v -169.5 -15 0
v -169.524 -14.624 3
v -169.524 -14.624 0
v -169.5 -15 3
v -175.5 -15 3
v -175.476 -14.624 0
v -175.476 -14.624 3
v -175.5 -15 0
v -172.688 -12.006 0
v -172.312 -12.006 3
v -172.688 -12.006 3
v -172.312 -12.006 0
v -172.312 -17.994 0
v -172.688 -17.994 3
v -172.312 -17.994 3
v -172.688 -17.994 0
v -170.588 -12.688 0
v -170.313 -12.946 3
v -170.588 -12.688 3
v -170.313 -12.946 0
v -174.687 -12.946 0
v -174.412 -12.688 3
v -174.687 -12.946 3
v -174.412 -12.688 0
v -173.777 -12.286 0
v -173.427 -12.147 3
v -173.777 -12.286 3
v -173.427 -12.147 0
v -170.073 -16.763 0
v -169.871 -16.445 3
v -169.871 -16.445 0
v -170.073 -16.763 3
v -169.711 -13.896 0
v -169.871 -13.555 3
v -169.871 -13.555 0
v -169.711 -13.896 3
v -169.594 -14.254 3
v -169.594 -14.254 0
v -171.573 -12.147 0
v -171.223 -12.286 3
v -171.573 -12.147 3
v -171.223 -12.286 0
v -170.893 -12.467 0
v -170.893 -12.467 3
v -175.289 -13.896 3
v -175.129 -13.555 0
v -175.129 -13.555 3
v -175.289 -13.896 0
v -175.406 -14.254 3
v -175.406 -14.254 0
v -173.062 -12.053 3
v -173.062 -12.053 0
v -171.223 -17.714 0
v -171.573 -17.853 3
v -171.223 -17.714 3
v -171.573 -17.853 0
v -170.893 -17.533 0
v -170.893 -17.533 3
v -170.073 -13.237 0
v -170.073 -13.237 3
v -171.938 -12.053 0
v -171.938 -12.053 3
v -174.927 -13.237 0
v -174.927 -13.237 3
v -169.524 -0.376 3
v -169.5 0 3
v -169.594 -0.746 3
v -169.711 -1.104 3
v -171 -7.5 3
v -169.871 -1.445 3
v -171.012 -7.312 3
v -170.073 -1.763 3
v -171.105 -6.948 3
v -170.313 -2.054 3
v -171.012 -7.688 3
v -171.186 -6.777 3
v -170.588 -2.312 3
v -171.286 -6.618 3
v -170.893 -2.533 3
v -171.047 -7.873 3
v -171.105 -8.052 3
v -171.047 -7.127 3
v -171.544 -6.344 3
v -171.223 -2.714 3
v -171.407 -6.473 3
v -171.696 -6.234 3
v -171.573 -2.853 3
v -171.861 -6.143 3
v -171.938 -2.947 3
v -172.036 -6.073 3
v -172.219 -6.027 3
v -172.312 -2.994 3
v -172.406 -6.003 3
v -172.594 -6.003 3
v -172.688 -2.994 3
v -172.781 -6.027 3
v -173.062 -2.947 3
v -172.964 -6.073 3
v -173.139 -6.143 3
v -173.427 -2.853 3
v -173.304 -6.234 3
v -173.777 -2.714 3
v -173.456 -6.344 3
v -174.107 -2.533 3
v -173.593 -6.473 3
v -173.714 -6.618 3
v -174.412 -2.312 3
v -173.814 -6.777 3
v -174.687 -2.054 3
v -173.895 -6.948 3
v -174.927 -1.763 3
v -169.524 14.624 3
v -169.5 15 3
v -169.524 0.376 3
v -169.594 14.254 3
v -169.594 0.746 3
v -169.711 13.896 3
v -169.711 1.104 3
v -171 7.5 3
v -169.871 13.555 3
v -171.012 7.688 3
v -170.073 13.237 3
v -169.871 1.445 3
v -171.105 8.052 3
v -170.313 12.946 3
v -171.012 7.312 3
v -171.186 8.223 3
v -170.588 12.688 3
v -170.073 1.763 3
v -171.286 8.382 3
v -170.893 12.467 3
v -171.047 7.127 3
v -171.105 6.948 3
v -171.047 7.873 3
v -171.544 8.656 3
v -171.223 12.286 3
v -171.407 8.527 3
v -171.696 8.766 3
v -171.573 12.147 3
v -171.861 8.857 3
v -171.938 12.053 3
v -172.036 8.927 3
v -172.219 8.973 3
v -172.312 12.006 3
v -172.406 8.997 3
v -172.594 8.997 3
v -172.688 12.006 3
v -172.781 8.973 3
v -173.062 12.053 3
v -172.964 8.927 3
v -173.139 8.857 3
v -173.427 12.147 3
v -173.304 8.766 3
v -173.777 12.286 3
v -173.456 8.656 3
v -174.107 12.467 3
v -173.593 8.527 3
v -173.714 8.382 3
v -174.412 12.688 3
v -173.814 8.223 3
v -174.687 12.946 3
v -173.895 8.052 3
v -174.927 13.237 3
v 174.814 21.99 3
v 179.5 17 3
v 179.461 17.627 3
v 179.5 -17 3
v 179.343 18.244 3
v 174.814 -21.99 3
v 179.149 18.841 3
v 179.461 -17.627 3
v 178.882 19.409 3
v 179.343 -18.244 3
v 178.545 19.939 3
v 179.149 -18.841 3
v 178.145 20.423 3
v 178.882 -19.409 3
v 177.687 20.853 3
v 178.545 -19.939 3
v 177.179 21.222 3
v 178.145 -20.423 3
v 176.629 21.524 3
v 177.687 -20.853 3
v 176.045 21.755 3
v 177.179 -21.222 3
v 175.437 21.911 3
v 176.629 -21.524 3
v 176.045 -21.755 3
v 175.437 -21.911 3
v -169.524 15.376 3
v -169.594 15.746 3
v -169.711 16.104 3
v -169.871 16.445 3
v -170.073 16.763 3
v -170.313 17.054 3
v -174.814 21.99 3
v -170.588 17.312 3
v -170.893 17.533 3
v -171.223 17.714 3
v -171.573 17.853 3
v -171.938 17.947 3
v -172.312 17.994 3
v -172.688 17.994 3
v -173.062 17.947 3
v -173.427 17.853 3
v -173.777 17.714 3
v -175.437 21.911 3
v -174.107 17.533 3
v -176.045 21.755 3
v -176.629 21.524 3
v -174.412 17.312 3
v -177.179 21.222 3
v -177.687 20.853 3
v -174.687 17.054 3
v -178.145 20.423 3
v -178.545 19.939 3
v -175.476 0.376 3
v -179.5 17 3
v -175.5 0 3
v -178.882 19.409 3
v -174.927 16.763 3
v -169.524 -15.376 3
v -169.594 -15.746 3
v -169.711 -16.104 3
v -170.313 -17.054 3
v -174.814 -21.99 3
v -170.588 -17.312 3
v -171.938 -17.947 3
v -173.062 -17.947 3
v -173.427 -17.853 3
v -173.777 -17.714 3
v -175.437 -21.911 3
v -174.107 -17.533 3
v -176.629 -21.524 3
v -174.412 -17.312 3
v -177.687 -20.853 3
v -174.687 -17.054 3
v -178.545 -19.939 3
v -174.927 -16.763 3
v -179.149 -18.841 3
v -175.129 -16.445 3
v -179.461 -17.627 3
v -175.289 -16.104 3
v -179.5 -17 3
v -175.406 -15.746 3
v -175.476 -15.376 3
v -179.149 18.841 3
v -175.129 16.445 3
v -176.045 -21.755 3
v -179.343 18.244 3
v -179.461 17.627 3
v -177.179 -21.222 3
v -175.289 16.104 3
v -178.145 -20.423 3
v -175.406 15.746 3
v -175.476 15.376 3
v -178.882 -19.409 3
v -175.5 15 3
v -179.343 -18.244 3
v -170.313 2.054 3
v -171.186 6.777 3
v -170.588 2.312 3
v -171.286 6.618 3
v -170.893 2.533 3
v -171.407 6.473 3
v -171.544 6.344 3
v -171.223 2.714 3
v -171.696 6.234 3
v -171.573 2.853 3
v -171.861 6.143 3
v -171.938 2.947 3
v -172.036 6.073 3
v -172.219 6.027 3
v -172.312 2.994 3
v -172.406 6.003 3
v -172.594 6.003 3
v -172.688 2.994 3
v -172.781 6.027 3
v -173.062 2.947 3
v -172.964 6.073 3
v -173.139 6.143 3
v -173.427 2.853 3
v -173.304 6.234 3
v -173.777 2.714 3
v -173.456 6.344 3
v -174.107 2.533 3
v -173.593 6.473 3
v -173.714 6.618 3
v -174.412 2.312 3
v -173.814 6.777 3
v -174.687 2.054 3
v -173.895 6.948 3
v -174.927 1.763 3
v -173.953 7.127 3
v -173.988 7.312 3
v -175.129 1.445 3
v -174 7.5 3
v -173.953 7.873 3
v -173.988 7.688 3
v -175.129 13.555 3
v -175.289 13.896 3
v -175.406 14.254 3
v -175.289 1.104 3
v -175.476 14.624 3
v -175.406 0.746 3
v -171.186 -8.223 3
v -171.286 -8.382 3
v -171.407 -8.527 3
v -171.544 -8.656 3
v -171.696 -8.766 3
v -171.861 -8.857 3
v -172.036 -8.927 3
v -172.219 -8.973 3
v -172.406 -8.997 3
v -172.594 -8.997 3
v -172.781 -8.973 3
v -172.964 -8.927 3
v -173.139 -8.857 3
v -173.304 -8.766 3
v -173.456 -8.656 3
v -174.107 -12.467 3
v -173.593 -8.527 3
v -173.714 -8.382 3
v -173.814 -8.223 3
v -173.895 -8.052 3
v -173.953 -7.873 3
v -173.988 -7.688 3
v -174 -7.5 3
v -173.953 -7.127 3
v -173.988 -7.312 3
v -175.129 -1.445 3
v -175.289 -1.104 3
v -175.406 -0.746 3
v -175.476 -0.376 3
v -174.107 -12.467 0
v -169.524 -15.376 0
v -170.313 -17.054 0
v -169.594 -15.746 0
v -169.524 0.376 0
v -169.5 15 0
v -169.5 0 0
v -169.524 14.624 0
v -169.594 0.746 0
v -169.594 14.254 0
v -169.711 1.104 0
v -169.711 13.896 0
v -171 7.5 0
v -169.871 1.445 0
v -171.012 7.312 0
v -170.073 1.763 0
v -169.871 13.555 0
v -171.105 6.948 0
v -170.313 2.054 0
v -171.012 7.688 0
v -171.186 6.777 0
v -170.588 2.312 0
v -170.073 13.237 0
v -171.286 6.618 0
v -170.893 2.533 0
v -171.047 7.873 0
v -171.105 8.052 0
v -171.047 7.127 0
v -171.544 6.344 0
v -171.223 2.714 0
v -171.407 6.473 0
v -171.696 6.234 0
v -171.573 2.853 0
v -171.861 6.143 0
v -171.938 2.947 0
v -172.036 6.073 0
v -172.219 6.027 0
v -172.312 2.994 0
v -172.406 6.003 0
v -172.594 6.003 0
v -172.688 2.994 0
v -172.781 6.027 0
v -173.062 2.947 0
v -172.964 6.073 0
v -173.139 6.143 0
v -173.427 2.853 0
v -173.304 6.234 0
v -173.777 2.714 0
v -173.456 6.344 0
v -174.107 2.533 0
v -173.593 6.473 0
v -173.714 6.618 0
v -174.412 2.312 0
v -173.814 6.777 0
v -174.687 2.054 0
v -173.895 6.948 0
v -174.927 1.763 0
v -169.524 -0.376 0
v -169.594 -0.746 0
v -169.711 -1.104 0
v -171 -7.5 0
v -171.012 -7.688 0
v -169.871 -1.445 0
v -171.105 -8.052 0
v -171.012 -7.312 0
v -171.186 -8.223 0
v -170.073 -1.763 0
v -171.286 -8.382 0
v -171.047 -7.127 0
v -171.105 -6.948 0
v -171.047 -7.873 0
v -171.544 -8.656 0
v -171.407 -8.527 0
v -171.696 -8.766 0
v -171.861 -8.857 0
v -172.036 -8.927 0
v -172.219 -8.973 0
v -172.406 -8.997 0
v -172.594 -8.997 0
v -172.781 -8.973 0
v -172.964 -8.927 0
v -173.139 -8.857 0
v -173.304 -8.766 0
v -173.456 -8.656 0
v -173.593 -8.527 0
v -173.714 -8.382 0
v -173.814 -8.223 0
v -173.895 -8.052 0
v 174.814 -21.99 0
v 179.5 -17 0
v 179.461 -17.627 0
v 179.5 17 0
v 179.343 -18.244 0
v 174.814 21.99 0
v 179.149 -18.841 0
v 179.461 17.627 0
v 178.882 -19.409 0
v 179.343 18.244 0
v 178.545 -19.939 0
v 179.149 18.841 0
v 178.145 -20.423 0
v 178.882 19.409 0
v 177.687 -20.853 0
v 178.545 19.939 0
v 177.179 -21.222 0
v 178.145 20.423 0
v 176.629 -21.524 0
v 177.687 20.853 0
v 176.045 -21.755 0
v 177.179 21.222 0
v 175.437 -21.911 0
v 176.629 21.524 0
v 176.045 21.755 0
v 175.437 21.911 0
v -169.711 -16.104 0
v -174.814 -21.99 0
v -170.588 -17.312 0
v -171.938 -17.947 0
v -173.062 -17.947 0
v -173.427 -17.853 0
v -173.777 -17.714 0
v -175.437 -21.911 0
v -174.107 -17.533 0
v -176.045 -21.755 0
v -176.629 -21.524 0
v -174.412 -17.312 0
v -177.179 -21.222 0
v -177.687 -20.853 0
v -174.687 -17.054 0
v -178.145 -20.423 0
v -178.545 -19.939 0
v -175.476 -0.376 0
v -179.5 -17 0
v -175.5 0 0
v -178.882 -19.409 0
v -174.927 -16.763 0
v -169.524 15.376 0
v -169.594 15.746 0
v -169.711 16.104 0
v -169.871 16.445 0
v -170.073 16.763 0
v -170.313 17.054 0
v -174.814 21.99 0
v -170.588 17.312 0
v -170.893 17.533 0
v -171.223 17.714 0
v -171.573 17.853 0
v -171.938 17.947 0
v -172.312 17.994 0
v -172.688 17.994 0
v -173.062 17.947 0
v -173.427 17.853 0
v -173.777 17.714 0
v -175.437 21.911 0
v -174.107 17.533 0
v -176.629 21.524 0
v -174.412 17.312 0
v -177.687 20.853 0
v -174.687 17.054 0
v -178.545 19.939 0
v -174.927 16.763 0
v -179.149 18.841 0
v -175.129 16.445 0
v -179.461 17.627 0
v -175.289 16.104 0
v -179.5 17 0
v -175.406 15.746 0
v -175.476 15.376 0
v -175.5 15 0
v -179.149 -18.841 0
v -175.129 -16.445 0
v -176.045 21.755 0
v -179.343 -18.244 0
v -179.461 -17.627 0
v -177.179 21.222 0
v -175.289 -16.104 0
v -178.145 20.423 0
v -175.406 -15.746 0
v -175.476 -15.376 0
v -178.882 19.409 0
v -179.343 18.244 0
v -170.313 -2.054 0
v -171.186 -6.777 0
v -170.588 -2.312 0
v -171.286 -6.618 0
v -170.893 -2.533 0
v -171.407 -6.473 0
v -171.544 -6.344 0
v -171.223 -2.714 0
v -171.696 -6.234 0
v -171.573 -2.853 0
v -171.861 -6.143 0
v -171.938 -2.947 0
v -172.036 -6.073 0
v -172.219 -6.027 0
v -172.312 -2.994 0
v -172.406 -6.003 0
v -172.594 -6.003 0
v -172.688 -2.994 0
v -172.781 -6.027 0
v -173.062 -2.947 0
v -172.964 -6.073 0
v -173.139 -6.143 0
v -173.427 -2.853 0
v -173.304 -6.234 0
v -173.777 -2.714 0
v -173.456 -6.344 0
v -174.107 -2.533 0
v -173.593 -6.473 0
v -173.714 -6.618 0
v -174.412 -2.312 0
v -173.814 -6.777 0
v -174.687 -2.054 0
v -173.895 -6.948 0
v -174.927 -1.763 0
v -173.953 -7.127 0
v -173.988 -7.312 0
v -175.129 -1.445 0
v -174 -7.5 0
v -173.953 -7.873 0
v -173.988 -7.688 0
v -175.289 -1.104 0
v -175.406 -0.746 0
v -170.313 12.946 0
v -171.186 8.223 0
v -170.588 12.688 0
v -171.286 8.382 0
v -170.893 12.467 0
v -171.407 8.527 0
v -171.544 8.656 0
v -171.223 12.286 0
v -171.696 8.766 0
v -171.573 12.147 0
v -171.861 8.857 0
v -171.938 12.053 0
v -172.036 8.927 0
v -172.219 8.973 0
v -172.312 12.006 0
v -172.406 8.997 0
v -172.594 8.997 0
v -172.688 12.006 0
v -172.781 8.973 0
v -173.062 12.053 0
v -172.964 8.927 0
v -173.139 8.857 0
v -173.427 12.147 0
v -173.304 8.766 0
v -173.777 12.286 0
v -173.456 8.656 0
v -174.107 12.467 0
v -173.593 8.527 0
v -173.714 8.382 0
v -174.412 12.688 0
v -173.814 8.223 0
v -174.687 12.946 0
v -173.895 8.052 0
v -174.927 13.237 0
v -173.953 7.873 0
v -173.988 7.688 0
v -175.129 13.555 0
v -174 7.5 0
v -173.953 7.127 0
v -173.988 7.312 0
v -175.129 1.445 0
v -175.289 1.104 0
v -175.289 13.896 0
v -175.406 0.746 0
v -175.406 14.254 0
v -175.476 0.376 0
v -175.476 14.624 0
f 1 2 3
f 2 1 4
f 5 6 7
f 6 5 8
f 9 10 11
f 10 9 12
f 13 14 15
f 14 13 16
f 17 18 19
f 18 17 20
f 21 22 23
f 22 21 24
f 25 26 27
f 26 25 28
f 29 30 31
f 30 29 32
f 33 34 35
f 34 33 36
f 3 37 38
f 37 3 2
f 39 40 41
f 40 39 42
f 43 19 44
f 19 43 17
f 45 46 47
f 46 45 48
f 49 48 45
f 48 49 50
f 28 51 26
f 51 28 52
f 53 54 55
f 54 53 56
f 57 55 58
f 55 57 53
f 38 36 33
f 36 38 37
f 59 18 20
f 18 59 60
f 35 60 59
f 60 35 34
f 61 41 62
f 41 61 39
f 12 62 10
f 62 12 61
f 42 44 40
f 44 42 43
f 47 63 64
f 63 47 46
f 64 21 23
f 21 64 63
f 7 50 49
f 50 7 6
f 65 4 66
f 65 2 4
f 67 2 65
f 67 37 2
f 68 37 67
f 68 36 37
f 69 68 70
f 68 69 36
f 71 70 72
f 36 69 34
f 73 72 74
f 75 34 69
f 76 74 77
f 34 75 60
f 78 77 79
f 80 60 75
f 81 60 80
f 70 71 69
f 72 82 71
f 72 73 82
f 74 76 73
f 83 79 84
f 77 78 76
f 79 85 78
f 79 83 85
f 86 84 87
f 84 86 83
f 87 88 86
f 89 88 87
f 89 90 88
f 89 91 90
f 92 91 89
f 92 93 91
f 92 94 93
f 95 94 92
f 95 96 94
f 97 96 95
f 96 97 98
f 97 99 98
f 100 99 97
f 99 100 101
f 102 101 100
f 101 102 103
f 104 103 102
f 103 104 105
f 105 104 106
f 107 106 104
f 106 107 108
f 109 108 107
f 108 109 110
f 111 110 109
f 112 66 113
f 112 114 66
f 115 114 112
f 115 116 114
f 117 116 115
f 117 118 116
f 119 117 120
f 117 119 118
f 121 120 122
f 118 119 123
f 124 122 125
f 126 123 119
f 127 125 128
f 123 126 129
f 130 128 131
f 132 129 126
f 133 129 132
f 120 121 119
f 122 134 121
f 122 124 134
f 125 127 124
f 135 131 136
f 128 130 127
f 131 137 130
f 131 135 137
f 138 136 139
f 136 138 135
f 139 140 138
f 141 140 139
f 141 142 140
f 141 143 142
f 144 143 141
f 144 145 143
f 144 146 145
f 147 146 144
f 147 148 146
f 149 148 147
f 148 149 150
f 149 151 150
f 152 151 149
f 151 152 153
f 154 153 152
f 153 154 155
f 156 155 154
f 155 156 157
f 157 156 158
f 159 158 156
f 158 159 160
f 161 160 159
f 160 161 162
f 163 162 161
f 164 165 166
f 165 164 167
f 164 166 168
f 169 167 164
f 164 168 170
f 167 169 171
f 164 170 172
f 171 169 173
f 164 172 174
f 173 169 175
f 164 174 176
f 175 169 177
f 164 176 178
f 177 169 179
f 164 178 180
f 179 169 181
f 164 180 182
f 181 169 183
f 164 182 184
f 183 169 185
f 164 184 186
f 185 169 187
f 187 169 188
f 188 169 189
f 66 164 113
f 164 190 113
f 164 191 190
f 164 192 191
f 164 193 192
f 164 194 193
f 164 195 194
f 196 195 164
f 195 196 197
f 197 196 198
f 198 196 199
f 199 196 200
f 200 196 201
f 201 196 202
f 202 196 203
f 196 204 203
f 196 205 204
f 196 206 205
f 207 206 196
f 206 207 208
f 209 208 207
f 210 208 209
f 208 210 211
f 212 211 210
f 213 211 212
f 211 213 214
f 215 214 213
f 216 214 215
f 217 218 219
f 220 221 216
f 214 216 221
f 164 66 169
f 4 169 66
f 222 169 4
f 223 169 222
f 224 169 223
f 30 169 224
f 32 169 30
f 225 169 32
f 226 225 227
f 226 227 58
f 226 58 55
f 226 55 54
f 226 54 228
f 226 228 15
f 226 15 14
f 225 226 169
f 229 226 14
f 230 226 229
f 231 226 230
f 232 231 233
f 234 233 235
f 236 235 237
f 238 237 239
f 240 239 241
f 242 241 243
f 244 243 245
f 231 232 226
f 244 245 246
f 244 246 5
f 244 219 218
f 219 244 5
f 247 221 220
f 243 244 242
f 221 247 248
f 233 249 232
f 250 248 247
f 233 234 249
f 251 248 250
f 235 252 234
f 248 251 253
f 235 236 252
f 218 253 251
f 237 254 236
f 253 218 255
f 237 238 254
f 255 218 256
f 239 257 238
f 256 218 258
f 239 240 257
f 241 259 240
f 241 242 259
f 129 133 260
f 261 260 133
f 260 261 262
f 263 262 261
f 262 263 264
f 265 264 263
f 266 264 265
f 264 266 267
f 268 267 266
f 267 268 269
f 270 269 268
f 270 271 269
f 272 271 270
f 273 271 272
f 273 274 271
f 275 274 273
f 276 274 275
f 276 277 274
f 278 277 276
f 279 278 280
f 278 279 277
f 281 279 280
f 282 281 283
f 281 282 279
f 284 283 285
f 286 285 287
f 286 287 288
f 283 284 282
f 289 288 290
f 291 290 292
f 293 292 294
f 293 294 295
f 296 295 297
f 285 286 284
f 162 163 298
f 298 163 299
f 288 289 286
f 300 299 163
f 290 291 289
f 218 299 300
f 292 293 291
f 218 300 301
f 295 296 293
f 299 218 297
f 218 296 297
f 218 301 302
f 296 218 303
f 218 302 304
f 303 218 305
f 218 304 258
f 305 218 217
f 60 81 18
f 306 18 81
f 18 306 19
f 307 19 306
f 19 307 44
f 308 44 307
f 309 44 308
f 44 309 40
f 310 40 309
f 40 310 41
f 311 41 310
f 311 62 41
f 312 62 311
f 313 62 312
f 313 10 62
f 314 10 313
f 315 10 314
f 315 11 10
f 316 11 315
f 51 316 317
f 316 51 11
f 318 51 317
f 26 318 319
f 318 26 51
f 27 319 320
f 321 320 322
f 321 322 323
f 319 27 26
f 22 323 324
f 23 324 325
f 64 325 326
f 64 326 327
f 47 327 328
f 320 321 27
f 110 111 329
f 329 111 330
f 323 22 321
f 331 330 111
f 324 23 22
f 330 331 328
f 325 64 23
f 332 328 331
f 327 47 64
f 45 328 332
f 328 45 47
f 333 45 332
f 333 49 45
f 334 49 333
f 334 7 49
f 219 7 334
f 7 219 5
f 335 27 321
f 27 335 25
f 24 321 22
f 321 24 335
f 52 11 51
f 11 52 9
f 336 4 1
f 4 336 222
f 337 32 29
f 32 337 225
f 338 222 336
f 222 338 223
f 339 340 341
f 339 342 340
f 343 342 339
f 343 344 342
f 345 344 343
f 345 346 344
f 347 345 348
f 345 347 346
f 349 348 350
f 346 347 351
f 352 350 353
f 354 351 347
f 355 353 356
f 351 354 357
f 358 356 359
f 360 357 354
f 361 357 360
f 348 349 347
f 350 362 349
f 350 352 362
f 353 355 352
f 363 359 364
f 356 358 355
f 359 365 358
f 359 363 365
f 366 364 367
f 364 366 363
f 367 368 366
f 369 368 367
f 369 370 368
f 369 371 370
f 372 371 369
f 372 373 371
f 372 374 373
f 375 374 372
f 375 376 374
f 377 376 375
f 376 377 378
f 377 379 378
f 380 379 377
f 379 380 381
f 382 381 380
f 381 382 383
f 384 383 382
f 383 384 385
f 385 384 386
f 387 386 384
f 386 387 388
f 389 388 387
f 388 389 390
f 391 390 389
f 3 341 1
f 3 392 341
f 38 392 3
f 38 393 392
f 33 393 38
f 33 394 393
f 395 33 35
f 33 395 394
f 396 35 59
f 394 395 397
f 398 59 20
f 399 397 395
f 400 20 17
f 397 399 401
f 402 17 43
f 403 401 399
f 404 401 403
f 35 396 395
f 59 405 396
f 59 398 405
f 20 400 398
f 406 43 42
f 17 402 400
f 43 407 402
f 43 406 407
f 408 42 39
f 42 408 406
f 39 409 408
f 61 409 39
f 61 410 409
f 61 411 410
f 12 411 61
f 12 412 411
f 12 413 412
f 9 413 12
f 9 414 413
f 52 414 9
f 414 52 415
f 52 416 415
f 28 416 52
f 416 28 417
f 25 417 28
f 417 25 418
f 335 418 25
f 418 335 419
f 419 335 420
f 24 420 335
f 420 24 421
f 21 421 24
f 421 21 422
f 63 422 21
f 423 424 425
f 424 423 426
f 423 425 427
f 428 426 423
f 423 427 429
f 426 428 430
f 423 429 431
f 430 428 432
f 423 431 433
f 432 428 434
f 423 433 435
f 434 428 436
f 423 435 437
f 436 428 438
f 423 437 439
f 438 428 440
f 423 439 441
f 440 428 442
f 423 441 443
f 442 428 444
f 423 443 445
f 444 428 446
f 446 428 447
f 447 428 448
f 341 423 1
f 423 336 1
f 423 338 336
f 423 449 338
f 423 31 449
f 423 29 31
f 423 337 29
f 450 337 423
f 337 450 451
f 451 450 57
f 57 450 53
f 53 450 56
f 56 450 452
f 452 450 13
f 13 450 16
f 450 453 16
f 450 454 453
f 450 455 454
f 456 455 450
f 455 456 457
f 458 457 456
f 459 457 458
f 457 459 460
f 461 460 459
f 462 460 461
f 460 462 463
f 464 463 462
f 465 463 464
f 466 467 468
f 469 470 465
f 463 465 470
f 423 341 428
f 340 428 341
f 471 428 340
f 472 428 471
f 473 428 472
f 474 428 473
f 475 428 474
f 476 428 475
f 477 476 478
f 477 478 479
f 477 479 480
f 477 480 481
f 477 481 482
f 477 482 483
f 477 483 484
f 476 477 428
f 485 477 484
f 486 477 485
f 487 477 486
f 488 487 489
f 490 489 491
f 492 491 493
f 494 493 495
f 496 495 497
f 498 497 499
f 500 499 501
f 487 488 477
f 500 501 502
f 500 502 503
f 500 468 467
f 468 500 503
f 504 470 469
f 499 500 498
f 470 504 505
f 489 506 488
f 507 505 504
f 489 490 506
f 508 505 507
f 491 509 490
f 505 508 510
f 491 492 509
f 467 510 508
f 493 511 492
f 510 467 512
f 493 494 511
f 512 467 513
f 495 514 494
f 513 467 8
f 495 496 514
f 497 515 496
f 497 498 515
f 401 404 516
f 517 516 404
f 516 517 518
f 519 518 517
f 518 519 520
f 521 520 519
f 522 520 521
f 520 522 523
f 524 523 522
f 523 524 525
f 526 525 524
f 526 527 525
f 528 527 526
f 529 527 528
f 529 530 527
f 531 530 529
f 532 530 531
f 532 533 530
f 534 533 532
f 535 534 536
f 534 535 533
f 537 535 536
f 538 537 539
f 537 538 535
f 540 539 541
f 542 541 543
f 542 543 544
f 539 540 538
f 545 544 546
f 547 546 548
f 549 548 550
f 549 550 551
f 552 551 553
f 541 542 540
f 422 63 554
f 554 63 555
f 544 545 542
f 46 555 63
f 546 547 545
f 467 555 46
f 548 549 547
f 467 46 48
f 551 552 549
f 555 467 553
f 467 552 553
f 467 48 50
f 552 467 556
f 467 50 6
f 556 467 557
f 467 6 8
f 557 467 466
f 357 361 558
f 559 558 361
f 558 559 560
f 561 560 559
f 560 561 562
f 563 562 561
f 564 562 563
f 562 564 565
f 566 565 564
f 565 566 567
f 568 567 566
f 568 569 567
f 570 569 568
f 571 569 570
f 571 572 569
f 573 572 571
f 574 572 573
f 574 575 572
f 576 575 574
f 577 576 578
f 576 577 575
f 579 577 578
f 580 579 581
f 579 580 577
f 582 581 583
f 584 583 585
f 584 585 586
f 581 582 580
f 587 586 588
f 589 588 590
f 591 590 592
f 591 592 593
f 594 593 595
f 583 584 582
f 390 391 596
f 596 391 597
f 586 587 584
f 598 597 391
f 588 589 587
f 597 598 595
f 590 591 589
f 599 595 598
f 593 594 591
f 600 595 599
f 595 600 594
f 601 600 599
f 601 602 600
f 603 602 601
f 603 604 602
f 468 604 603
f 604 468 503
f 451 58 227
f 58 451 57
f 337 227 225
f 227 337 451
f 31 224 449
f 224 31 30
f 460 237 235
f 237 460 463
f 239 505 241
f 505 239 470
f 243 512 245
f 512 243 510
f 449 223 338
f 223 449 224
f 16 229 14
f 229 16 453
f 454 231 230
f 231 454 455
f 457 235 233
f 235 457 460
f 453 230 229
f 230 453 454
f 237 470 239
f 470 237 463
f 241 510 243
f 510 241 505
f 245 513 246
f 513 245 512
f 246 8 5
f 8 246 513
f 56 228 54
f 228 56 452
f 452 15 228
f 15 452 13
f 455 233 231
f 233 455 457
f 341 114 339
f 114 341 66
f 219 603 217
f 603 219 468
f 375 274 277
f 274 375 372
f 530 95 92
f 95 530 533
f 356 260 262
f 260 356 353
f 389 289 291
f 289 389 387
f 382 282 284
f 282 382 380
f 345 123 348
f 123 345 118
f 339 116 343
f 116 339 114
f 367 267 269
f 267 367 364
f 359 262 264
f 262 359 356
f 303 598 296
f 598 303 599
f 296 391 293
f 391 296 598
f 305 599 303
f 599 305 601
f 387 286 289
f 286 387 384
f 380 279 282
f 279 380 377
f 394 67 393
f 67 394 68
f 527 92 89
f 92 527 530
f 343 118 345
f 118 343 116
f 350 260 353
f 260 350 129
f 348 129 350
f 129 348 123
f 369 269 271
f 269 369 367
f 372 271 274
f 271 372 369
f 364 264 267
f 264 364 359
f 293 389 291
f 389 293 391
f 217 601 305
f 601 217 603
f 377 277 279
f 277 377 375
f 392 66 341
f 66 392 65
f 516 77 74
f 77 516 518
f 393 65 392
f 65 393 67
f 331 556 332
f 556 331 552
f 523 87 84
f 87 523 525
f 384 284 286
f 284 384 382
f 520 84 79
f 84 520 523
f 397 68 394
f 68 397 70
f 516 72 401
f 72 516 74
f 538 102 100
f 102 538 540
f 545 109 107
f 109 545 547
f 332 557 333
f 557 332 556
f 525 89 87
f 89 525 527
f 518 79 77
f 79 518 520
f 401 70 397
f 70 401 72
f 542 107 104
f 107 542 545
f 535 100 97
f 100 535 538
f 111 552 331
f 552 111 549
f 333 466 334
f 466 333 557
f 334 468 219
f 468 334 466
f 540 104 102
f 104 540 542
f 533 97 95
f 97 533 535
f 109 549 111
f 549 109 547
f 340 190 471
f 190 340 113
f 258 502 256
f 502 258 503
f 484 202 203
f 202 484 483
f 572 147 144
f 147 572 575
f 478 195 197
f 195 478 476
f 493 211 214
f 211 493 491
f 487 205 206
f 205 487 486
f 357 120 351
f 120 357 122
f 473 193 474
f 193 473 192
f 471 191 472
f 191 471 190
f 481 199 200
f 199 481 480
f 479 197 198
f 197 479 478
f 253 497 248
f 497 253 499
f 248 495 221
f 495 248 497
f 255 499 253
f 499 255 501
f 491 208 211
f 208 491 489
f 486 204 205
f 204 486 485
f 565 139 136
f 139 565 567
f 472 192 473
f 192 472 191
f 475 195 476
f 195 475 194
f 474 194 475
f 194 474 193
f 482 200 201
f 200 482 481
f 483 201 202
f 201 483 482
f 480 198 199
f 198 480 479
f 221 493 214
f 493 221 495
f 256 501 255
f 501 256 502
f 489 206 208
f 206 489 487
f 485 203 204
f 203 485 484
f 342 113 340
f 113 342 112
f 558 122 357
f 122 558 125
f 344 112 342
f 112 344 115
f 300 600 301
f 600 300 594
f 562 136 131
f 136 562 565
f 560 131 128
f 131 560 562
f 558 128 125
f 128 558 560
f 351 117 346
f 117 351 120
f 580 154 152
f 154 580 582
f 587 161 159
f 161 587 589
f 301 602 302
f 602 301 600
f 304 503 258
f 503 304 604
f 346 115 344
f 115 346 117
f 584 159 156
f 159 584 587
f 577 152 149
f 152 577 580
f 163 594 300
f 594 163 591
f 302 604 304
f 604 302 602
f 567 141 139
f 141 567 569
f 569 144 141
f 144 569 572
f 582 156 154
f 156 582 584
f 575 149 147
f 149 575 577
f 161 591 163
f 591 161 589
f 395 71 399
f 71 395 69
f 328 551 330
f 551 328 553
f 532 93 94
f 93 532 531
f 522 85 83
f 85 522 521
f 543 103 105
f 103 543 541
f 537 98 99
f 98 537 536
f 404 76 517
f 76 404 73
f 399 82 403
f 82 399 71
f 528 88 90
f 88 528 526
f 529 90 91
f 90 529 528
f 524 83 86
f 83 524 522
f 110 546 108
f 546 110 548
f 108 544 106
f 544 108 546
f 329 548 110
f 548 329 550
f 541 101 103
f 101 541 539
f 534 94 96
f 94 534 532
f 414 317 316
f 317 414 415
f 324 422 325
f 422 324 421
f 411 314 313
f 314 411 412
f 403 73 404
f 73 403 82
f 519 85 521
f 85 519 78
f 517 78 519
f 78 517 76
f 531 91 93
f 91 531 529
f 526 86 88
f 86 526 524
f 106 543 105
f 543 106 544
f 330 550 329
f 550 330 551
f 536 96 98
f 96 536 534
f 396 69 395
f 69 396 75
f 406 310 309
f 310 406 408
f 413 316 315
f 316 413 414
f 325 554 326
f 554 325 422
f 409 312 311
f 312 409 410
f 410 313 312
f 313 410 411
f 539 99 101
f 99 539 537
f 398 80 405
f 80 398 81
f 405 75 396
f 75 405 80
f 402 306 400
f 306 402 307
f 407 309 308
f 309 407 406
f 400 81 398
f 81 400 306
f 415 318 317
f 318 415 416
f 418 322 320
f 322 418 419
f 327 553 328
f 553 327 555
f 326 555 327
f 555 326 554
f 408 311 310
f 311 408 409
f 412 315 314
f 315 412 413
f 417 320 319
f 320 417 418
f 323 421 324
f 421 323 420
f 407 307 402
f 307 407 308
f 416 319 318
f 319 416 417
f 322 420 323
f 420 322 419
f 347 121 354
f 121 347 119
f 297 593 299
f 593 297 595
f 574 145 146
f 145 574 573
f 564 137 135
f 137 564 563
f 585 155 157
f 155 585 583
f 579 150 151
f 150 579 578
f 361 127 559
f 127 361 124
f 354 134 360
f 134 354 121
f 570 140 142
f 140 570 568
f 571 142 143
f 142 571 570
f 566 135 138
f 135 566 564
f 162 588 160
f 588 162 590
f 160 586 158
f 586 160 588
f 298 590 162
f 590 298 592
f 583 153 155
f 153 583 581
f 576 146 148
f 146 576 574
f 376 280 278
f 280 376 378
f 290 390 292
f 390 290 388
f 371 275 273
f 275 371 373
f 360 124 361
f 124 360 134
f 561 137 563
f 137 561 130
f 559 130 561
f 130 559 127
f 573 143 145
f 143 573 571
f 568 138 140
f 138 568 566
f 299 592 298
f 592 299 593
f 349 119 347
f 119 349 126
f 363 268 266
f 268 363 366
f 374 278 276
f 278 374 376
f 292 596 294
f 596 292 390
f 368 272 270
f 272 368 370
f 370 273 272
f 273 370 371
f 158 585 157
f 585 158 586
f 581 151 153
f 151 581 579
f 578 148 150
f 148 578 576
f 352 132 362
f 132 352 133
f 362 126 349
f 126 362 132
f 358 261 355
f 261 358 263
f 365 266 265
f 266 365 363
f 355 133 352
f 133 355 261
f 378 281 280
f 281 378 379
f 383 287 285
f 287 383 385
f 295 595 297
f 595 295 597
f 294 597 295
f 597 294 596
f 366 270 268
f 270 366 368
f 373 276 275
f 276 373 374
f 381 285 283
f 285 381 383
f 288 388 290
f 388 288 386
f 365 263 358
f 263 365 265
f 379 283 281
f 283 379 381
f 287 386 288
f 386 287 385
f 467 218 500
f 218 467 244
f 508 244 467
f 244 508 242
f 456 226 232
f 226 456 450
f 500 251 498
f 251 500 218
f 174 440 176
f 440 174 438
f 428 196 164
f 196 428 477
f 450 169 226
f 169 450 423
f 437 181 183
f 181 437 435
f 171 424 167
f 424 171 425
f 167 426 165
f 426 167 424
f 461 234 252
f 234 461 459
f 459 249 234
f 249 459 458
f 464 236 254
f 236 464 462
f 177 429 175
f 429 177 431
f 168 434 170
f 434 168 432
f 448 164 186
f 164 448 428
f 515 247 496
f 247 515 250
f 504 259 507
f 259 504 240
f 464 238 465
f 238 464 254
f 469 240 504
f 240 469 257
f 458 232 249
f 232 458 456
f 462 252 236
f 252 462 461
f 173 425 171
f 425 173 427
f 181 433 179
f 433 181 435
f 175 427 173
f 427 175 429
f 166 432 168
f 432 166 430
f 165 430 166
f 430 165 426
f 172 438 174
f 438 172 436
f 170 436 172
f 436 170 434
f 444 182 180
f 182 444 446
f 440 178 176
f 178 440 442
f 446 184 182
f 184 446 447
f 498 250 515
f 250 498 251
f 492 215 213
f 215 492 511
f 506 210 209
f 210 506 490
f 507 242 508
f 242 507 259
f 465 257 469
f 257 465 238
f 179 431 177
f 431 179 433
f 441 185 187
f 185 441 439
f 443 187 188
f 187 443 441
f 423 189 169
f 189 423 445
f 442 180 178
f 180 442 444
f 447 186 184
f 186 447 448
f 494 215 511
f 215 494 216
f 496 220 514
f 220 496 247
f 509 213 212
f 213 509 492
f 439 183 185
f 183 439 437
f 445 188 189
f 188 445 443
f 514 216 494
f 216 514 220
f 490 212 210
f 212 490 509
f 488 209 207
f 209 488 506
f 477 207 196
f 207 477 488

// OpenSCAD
$fn = 50;


difference() {
	union() {
		hull() {
			translate(v = [-174.5000000000, 17.0000000000, 0]) {
				cylinder(h = 3, r = 5);
			}
			translate(v = [174.5000000000, 17.0000000000, 0]) {
				cylinder(h = 3, r = 5);
			}
			translate(v = [-174.5000000000, -17.0000000000, 0]) {
				cylinder(h = 3, r = 5);
			}
			translate(v = [174.5000000000, -17.0000000000, 0]) {
				cylinder(h = 3, r = 5);
			}
		}
	}
	union() {
		translate(v = [-172.5000000000, -15.0000000000, 0]) {
			cylinder(h = 3, r = 3.0000000000);
		}
		translate(v = [-172.5000000000, 0.0000000000, 0]) {
			cylinder(h = 3, r = 3.0000000000);
		}
		translate(v = [-172.5000000000, 15.0000000000, 0]) {
			cylinder(h = 3, r = 3.0000000000);
		}
		translate(v = [-172.5000000000, -15.0000000000, 0]) {
			cylinder(h = 3, r = 1.5000000000);
		}
		translate(v = [-172.5000000000, -7.5000000000, 0]) {
			cylinder(h = 3, r = 1.5000000000);
		}
		translate(v = [-172.5000000000, 0.0000000000, 0]) {
			cylinder(h = 3, r = 1.5000000000);
		}
		translate(v = [-172.5000000000, 7.5000000000, 0]) {
			cylinder(h = 3, r = 1.5000000000);
		}
		translate(v = [-172.5000000000, 15.0000000000, 0]) {
			cylinder(h = 3, r = 1.5000000000);
		}
		translate(v = [-172.5000000000, -15.0000000000, 0]) {
			cylinder(h = 3, r = 1.5000000000);
		}
		translate(v = [-172.5000000000, -7.5000000000, 0]) {
			cylinder(h = 3, r = 1.5000000000);
		}
		translate(v = [-172.5000000000, 0.0000000000, 0]) {
			cylinder(h = 3, r = 1.5000000000);
		}
		translate(v = [-172.5000000000, 7.5000000000, 0]) {
			cylinder(h = 3, r = 1.5000000000);
		}
		translate(v = [-172.5000000000, 15.0000000000, 0]) {
			cylinder(h = 3, r = 1.5000000000);
		}
		translate(v = [-172.5000000000, -15.0000000000, 0]) {
			cylinder(h = 3, r = 1.5000000000);
		}
		translate(v = [-172.5000000000, -7.5000000000, 0]) {
			cylinder(h = 3, r = 1.5000000000);
		}
		translate(v = [-172.5000000000, 0.0000000000, 0]) {
			cylinder(h = 3, r = 1.5000000000);
		}
		translate(v = [-172.5000000000, 7.5000000000, 0]) {
			cylinder(h = 3, r = 1.5000000000);
		}
		translate(v = [-172.5000000000, 15.0000000000, 0]) {
			cylinder(h = 3, r = 1.5000000000);
		}
	}
}
